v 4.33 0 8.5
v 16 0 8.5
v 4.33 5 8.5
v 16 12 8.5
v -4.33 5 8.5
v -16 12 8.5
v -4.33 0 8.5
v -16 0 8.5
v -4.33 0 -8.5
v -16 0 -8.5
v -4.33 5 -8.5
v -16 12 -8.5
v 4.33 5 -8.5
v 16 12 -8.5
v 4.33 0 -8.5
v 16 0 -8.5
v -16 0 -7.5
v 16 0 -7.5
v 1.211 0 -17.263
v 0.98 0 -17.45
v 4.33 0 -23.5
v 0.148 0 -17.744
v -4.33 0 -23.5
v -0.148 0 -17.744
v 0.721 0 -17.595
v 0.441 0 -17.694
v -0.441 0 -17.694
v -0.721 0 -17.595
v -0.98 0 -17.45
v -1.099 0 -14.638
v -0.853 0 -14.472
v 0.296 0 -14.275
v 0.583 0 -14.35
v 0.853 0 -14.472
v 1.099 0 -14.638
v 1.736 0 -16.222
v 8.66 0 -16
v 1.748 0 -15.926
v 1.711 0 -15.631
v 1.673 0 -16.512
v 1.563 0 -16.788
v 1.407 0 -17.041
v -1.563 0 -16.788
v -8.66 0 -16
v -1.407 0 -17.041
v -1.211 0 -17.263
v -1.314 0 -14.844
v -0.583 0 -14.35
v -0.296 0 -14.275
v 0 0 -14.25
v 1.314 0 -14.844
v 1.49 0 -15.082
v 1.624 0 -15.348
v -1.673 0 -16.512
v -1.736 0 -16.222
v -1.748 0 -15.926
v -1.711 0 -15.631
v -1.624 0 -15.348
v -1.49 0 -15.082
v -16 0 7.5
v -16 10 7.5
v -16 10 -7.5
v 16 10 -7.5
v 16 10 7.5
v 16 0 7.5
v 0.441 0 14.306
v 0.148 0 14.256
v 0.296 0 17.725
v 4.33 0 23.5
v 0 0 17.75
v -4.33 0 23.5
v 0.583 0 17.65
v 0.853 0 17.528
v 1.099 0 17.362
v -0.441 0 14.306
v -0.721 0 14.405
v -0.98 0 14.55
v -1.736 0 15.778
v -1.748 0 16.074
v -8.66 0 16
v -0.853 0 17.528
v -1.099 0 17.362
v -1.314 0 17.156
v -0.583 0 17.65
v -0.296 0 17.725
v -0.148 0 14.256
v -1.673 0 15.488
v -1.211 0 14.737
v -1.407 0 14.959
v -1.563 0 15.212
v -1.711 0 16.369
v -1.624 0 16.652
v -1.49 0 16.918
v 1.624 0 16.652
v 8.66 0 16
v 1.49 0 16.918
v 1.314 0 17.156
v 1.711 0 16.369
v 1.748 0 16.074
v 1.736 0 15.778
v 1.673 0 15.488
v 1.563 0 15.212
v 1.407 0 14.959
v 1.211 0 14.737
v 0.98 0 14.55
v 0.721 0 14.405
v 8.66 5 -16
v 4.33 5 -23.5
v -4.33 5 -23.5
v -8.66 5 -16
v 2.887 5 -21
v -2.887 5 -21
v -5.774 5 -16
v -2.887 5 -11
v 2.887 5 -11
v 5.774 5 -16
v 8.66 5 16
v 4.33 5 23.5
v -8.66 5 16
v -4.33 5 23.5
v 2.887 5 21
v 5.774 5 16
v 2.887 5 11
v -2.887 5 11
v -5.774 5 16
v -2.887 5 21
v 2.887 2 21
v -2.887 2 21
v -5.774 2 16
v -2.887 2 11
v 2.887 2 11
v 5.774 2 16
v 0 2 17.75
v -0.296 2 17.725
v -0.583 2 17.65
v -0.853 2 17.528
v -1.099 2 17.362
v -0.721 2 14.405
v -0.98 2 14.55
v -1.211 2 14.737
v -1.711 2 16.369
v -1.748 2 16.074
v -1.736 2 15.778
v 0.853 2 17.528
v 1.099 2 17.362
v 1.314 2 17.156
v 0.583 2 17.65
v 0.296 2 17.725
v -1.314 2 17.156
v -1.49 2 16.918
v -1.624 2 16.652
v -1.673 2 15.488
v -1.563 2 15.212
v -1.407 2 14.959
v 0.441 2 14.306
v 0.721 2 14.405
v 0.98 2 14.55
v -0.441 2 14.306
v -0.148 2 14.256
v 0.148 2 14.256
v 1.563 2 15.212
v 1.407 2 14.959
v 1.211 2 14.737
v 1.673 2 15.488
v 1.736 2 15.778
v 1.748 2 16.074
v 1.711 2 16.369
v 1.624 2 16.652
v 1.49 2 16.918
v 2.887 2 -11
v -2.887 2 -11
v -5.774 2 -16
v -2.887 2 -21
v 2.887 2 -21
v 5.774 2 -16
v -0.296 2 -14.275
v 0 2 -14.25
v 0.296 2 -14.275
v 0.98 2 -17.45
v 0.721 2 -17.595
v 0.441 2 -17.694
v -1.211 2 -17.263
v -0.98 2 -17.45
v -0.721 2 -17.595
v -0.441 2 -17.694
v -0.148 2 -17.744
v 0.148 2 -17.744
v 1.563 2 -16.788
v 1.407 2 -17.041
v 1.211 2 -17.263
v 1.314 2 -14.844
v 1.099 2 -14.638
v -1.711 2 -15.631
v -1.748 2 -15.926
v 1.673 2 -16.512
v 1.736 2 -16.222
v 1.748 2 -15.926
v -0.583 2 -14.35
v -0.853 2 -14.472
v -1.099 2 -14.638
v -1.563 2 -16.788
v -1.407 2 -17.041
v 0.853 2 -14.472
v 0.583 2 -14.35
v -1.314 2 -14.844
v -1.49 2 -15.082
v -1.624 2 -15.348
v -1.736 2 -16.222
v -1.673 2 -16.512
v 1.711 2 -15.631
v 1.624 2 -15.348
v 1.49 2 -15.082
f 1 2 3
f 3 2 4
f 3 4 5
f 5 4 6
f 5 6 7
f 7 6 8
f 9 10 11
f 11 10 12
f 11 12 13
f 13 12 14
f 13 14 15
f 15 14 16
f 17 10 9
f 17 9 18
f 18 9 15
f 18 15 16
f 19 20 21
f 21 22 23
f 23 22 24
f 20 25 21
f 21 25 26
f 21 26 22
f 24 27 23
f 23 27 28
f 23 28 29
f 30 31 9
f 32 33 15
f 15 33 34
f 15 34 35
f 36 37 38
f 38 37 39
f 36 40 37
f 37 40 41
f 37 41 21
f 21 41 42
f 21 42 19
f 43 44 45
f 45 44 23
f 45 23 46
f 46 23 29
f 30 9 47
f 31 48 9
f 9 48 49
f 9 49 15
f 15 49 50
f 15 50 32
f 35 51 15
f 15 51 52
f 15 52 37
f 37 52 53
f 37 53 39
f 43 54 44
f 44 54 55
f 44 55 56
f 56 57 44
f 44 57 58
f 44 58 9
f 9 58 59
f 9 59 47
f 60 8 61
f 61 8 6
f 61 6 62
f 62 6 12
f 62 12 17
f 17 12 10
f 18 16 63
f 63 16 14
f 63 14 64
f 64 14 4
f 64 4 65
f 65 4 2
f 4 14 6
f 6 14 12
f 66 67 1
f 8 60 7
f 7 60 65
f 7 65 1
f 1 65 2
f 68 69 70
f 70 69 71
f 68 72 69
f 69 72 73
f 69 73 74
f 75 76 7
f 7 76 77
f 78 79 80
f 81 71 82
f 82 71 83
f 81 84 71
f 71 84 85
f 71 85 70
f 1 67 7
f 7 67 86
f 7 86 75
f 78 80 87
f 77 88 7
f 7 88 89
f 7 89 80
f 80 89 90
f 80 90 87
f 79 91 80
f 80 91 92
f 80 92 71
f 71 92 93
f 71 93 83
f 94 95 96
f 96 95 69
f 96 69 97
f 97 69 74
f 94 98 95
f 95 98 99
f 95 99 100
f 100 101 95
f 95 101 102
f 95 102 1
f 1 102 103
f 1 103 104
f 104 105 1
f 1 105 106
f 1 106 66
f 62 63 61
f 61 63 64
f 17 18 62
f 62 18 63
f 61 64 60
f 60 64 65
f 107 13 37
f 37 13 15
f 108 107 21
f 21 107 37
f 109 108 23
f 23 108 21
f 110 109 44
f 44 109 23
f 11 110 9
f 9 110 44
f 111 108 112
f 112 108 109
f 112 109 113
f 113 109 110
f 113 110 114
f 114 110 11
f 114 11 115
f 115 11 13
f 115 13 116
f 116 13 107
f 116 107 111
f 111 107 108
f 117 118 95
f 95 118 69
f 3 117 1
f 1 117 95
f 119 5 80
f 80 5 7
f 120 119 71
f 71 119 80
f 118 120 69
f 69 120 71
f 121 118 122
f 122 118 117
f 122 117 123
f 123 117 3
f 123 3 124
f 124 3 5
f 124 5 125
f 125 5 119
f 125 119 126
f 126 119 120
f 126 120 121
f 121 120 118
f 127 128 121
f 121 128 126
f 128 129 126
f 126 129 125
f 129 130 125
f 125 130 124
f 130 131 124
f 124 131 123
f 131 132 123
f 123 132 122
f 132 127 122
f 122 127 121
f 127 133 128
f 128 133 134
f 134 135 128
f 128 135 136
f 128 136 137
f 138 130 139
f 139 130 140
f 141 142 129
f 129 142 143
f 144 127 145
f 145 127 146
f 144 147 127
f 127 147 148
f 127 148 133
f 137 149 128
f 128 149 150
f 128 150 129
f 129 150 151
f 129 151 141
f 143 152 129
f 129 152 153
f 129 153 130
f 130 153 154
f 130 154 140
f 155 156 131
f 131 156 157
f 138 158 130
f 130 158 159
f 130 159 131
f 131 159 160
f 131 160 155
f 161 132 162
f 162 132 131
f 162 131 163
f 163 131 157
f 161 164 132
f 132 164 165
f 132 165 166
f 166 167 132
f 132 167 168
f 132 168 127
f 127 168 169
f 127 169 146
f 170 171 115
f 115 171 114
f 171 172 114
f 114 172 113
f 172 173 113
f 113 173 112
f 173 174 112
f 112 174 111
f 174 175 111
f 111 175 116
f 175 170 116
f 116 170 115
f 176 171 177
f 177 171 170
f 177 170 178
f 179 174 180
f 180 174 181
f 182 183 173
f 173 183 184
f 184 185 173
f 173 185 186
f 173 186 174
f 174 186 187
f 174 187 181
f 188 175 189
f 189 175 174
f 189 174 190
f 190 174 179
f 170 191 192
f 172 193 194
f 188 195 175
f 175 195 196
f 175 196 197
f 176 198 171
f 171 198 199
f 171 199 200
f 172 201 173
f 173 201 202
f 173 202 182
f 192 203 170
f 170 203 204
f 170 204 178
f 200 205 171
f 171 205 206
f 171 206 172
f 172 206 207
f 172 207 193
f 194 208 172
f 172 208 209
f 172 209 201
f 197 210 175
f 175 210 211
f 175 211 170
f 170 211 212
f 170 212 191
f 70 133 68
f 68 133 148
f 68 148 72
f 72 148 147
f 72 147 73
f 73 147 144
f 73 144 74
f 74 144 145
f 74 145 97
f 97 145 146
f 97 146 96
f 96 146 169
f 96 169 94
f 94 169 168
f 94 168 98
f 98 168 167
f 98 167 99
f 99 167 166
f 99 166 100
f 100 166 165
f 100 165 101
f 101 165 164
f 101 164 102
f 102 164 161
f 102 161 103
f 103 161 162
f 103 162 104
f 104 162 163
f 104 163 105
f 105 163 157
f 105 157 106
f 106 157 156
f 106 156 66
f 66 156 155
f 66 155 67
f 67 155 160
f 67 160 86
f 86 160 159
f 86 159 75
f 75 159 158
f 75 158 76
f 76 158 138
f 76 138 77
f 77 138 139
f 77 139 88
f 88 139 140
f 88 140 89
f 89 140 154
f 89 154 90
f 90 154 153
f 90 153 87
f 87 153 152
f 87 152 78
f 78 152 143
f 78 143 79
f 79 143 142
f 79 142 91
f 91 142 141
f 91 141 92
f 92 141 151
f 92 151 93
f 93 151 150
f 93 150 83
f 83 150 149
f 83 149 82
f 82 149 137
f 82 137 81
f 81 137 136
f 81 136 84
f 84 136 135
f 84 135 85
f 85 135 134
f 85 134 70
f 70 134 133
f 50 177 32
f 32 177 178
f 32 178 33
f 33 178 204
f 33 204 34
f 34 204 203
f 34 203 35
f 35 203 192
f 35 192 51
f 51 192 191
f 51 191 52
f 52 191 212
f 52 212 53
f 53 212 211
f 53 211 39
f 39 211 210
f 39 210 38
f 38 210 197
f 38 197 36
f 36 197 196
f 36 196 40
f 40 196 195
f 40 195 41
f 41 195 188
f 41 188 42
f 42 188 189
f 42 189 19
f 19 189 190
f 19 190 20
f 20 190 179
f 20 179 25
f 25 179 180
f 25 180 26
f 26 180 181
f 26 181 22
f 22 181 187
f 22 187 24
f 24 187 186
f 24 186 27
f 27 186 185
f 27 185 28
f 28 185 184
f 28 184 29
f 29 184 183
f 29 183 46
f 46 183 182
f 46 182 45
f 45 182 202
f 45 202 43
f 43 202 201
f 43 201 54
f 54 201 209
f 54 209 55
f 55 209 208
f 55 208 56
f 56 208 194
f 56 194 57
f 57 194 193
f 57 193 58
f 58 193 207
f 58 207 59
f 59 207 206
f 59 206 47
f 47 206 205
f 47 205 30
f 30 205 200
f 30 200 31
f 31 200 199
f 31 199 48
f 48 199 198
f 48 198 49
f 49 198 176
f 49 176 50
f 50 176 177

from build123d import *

# Parameters (mm, degrees)
SKETCH1_W           = 32
SKETCH1_H           = 17
BOSS_EXTRUDE1_DEPTH = 12
SKETCH2_W           = 15
SKETCH2_H           = 10
CUT_EXTRUDE1_DEPTH  = 58
BOSS_EXTRUDE2_DEPTH = 5
CUT_EXTRUDE2_DEPTH  = 3
SKETCH5_R           = 1.75
CUT_EXTRUDE3_DEPTH  = 4


with BuildPart() as part:
    # Sketch1 → Boss-Extrude1 (new body)
    with BuildSketch(Plane(origin=(0, 0, 0), x_dir=(1, 0, 0), z_dir=(0, 1, 0))):
        Rectangle(SKETCH1_W, SKETCH1_H)
    extrude(amount=BOSS_EXTRUDE1_DEPTH)

    # Sketch2 → Cut-Extrude1 (cut)
    with BuildSketch(Plane.ZY.offset(16)):
        with Locations((0, 5)):
            Rectangle(SKETCH2_W, SKETCH2_H)
    extrude(amount=-CUT_EXTRUDE1_DEPTH, mode=Mode.SUBTRACT)

    # Sketch3 → Boss-Extrude2 (add)
    with BuildSketch(Plane.XZ):
        Polygon((4.330127019, -8.5), (-4.330127019, -8.5), (-8.660254038, -16), (-4.330127019, -23.5), (4.330127019, -23.5), (8.660254038, -16), align=None)
        Polygon((8.660254038, 16), (4.330127019, 8.5), (-4.330127019, 8.5), (-8.660254038, 16), (-4.330127019, 23.5), (4.330127019, 23.5), align=None)
    extrude(amount=-BOSS_EXTRUDE2_DEPTH)

    # Sketch4 → Cut-Extrude2 (cut)
    with BuildSketch(Plane(origin=(0, 5, 0), x_dir=(1, 0, 0), z_dir=(0, 1, 0))):
        Polygon((2.886751346, 11), (5.773502692, 16), (2.886751346, 21), (-2.886751346, 21), (-5.773502692, 16), (-2.886751346, 11), align=None)
        Polygon((2.886751346, -21), (5.773502692, -16), (2.886751346, -11), (-2.886751346, -11), (-5.773502692, -16), (-2.886751346, -21), align=None)
    extrude(amount=-CUT_EXTRUDE2_DEPTH, mode=Mode.SUBTRACT)

    # Sketch5 → Cut-Extrude3 (cut)
    with BuildSketch(Plane(origin=(0, 2, 0), x_dir=(1, 0, 0), z_dir=(0, 1, 0))):
        with Locations(Location((0, 16, 0), (0, 0, 270))):
            Circle(SKETCH5_R)
        with Locations(Location((0, -16, 0), (0, 0, 270))):
            Circle(SKETCH5_R)
    extrude(amount=-CUT_EXTRUDE3_DEPTH, mode=Mode.SUBTRACT)


solid = part.part
